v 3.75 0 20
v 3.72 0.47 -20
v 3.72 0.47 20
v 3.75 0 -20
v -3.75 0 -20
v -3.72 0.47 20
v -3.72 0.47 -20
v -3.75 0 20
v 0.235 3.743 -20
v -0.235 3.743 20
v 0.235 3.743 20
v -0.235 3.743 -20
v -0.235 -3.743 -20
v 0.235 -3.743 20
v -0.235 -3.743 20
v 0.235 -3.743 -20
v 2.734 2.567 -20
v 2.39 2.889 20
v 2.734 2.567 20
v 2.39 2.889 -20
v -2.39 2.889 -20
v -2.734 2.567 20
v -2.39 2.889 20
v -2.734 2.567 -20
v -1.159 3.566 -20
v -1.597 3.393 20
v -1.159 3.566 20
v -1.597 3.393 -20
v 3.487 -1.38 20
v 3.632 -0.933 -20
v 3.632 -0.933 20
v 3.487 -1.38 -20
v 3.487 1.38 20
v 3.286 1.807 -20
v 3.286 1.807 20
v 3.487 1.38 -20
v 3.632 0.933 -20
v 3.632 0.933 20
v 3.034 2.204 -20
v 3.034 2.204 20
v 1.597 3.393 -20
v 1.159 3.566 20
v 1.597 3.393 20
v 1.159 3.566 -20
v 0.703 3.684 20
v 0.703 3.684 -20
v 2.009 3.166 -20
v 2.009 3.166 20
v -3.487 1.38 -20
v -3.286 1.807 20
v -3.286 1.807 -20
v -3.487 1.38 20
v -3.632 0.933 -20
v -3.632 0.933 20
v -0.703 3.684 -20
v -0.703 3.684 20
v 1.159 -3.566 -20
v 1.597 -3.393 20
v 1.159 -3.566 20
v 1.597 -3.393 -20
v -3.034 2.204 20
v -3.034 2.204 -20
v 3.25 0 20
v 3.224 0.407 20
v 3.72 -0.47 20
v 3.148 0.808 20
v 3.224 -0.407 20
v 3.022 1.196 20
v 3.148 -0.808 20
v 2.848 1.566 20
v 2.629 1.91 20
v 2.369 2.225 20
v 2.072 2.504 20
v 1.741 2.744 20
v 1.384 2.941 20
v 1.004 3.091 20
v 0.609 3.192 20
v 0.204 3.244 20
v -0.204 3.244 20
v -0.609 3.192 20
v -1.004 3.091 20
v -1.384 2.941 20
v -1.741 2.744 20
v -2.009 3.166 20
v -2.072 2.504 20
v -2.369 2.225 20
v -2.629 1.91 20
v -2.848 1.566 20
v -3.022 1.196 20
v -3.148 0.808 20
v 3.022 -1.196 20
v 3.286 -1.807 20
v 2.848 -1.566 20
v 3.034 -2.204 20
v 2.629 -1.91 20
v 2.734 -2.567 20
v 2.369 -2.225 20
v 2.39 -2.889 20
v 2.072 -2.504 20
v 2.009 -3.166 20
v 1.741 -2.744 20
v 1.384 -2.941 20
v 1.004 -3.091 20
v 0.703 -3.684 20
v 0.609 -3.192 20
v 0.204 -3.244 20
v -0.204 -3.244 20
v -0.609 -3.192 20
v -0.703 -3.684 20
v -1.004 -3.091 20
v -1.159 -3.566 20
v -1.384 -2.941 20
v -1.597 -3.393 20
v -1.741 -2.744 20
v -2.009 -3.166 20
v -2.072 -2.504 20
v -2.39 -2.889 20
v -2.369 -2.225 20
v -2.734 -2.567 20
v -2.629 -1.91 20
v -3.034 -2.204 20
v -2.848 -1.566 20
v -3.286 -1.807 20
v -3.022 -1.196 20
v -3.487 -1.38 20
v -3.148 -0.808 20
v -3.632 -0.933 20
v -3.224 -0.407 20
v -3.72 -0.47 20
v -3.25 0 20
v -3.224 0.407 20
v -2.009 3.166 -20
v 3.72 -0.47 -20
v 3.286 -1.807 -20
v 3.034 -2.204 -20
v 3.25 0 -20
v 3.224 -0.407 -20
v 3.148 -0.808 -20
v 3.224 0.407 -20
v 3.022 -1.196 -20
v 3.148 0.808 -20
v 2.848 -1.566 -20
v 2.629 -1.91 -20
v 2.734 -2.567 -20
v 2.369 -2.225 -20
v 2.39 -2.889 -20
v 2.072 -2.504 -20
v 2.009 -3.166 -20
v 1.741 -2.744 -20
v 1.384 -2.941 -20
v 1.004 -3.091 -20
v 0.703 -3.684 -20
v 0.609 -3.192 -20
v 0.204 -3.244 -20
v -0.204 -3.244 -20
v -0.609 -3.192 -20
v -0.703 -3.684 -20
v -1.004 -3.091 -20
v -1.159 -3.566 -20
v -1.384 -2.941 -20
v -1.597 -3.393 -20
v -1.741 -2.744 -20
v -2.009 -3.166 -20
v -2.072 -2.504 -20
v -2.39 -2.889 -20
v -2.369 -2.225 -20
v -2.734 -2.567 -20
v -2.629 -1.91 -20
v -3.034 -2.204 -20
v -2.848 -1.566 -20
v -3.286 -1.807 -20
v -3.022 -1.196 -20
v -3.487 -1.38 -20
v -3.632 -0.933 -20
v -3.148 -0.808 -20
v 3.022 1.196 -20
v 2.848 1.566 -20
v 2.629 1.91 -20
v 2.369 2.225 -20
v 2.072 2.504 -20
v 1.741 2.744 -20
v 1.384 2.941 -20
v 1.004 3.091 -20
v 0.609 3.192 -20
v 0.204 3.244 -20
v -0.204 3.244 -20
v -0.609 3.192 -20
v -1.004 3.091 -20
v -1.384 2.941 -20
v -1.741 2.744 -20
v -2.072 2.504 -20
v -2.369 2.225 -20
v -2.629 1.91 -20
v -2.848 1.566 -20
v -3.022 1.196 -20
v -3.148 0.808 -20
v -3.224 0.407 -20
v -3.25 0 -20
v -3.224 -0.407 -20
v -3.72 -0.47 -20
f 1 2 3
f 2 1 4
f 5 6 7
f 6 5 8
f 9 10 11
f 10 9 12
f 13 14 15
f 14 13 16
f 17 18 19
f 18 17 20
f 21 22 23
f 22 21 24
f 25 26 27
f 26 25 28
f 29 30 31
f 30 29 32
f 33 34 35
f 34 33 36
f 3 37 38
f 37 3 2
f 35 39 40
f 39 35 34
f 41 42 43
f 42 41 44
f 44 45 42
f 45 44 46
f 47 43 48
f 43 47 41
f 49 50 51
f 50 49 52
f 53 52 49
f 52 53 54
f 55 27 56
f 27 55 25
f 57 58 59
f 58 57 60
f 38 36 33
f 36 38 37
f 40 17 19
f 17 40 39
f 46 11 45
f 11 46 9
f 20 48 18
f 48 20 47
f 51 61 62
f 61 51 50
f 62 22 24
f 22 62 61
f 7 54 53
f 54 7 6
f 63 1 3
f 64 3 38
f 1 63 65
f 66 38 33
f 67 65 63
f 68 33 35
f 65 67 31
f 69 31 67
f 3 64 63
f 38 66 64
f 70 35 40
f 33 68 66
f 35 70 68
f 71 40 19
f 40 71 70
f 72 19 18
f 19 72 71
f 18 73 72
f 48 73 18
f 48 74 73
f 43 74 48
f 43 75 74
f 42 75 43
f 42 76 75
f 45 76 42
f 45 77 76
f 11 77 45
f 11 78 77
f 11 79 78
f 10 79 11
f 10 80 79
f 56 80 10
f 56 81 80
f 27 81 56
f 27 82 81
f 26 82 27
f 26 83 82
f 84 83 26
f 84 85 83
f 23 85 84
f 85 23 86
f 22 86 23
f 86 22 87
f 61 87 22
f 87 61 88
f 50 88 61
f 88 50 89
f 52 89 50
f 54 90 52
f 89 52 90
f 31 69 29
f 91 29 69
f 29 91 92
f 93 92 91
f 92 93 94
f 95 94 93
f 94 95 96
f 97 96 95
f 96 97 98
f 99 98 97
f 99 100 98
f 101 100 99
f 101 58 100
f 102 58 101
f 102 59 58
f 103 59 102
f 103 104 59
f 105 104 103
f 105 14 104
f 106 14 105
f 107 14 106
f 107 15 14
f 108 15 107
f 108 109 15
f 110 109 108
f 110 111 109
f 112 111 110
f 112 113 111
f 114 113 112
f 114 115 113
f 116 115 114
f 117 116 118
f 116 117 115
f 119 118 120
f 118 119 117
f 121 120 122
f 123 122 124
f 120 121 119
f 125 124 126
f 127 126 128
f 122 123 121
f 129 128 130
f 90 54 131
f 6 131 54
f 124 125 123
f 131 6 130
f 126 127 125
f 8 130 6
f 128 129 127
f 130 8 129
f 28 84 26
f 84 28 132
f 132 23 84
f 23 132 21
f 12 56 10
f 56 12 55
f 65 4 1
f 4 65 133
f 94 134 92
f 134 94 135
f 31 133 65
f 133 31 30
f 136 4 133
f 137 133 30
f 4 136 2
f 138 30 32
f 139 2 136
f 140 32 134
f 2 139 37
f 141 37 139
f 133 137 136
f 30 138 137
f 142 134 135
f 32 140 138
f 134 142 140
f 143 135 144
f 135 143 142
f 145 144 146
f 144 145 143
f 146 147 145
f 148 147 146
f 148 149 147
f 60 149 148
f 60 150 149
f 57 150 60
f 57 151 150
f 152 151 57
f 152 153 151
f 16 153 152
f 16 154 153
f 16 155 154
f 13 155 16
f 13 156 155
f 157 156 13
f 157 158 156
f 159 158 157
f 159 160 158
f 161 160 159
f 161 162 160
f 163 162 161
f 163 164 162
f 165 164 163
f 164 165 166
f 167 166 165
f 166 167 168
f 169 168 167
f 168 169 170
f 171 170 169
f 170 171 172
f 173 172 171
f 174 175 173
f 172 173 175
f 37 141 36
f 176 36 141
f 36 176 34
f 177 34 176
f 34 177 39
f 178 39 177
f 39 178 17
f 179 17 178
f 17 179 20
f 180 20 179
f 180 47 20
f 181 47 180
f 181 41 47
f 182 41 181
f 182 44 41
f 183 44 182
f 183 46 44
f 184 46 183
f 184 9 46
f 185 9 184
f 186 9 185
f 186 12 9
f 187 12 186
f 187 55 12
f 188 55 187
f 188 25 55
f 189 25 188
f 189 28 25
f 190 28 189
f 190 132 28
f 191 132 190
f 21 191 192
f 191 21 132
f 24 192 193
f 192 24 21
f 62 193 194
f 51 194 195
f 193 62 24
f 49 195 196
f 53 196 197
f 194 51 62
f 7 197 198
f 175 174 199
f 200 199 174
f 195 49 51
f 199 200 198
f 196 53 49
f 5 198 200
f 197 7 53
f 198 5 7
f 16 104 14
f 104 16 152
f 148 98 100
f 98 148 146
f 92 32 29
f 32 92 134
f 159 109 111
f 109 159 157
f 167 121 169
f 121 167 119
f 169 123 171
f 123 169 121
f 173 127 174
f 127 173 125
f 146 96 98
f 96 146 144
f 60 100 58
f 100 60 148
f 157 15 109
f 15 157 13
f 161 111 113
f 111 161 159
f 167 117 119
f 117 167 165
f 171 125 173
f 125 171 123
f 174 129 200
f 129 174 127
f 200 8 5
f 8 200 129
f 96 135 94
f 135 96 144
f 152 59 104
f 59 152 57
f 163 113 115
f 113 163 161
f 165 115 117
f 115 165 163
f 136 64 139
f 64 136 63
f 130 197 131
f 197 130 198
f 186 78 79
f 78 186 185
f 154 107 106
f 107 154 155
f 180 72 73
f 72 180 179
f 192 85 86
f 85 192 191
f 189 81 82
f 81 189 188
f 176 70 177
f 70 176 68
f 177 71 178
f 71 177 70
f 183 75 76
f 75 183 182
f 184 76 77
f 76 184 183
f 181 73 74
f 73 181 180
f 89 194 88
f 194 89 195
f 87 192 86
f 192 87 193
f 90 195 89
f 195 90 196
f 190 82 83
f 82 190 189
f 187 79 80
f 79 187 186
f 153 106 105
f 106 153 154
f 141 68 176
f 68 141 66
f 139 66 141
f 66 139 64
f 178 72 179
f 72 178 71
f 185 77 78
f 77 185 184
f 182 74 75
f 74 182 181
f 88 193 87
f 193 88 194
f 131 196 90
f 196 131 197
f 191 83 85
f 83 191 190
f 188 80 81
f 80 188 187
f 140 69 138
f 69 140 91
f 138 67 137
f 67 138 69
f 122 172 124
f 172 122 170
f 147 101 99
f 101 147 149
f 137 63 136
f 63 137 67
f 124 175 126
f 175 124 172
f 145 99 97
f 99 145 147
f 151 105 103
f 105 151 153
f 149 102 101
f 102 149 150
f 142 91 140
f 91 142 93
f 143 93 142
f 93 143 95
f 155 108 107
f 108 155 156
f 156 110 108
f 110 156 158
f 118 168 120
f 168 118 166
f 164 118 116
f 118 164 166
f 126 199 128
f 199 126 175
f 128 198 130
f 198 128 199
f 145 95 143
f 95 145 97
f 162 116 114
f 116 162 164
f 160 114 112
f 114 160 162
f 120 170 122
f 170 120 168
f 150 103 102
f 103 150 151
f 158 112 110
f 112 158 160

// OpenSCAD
$fn = 50;


difference() {
	union() {
		translate(v = [0, 0, -20.0000000000]) {
			cylinder(h = 40, r = 3.7500000000);
		}
	}
	union() {
		translate(v = [0, 0, -100.0000000000]) {
			cylinder(h = 200, r = 3.2500000000);
		}
	}
}
